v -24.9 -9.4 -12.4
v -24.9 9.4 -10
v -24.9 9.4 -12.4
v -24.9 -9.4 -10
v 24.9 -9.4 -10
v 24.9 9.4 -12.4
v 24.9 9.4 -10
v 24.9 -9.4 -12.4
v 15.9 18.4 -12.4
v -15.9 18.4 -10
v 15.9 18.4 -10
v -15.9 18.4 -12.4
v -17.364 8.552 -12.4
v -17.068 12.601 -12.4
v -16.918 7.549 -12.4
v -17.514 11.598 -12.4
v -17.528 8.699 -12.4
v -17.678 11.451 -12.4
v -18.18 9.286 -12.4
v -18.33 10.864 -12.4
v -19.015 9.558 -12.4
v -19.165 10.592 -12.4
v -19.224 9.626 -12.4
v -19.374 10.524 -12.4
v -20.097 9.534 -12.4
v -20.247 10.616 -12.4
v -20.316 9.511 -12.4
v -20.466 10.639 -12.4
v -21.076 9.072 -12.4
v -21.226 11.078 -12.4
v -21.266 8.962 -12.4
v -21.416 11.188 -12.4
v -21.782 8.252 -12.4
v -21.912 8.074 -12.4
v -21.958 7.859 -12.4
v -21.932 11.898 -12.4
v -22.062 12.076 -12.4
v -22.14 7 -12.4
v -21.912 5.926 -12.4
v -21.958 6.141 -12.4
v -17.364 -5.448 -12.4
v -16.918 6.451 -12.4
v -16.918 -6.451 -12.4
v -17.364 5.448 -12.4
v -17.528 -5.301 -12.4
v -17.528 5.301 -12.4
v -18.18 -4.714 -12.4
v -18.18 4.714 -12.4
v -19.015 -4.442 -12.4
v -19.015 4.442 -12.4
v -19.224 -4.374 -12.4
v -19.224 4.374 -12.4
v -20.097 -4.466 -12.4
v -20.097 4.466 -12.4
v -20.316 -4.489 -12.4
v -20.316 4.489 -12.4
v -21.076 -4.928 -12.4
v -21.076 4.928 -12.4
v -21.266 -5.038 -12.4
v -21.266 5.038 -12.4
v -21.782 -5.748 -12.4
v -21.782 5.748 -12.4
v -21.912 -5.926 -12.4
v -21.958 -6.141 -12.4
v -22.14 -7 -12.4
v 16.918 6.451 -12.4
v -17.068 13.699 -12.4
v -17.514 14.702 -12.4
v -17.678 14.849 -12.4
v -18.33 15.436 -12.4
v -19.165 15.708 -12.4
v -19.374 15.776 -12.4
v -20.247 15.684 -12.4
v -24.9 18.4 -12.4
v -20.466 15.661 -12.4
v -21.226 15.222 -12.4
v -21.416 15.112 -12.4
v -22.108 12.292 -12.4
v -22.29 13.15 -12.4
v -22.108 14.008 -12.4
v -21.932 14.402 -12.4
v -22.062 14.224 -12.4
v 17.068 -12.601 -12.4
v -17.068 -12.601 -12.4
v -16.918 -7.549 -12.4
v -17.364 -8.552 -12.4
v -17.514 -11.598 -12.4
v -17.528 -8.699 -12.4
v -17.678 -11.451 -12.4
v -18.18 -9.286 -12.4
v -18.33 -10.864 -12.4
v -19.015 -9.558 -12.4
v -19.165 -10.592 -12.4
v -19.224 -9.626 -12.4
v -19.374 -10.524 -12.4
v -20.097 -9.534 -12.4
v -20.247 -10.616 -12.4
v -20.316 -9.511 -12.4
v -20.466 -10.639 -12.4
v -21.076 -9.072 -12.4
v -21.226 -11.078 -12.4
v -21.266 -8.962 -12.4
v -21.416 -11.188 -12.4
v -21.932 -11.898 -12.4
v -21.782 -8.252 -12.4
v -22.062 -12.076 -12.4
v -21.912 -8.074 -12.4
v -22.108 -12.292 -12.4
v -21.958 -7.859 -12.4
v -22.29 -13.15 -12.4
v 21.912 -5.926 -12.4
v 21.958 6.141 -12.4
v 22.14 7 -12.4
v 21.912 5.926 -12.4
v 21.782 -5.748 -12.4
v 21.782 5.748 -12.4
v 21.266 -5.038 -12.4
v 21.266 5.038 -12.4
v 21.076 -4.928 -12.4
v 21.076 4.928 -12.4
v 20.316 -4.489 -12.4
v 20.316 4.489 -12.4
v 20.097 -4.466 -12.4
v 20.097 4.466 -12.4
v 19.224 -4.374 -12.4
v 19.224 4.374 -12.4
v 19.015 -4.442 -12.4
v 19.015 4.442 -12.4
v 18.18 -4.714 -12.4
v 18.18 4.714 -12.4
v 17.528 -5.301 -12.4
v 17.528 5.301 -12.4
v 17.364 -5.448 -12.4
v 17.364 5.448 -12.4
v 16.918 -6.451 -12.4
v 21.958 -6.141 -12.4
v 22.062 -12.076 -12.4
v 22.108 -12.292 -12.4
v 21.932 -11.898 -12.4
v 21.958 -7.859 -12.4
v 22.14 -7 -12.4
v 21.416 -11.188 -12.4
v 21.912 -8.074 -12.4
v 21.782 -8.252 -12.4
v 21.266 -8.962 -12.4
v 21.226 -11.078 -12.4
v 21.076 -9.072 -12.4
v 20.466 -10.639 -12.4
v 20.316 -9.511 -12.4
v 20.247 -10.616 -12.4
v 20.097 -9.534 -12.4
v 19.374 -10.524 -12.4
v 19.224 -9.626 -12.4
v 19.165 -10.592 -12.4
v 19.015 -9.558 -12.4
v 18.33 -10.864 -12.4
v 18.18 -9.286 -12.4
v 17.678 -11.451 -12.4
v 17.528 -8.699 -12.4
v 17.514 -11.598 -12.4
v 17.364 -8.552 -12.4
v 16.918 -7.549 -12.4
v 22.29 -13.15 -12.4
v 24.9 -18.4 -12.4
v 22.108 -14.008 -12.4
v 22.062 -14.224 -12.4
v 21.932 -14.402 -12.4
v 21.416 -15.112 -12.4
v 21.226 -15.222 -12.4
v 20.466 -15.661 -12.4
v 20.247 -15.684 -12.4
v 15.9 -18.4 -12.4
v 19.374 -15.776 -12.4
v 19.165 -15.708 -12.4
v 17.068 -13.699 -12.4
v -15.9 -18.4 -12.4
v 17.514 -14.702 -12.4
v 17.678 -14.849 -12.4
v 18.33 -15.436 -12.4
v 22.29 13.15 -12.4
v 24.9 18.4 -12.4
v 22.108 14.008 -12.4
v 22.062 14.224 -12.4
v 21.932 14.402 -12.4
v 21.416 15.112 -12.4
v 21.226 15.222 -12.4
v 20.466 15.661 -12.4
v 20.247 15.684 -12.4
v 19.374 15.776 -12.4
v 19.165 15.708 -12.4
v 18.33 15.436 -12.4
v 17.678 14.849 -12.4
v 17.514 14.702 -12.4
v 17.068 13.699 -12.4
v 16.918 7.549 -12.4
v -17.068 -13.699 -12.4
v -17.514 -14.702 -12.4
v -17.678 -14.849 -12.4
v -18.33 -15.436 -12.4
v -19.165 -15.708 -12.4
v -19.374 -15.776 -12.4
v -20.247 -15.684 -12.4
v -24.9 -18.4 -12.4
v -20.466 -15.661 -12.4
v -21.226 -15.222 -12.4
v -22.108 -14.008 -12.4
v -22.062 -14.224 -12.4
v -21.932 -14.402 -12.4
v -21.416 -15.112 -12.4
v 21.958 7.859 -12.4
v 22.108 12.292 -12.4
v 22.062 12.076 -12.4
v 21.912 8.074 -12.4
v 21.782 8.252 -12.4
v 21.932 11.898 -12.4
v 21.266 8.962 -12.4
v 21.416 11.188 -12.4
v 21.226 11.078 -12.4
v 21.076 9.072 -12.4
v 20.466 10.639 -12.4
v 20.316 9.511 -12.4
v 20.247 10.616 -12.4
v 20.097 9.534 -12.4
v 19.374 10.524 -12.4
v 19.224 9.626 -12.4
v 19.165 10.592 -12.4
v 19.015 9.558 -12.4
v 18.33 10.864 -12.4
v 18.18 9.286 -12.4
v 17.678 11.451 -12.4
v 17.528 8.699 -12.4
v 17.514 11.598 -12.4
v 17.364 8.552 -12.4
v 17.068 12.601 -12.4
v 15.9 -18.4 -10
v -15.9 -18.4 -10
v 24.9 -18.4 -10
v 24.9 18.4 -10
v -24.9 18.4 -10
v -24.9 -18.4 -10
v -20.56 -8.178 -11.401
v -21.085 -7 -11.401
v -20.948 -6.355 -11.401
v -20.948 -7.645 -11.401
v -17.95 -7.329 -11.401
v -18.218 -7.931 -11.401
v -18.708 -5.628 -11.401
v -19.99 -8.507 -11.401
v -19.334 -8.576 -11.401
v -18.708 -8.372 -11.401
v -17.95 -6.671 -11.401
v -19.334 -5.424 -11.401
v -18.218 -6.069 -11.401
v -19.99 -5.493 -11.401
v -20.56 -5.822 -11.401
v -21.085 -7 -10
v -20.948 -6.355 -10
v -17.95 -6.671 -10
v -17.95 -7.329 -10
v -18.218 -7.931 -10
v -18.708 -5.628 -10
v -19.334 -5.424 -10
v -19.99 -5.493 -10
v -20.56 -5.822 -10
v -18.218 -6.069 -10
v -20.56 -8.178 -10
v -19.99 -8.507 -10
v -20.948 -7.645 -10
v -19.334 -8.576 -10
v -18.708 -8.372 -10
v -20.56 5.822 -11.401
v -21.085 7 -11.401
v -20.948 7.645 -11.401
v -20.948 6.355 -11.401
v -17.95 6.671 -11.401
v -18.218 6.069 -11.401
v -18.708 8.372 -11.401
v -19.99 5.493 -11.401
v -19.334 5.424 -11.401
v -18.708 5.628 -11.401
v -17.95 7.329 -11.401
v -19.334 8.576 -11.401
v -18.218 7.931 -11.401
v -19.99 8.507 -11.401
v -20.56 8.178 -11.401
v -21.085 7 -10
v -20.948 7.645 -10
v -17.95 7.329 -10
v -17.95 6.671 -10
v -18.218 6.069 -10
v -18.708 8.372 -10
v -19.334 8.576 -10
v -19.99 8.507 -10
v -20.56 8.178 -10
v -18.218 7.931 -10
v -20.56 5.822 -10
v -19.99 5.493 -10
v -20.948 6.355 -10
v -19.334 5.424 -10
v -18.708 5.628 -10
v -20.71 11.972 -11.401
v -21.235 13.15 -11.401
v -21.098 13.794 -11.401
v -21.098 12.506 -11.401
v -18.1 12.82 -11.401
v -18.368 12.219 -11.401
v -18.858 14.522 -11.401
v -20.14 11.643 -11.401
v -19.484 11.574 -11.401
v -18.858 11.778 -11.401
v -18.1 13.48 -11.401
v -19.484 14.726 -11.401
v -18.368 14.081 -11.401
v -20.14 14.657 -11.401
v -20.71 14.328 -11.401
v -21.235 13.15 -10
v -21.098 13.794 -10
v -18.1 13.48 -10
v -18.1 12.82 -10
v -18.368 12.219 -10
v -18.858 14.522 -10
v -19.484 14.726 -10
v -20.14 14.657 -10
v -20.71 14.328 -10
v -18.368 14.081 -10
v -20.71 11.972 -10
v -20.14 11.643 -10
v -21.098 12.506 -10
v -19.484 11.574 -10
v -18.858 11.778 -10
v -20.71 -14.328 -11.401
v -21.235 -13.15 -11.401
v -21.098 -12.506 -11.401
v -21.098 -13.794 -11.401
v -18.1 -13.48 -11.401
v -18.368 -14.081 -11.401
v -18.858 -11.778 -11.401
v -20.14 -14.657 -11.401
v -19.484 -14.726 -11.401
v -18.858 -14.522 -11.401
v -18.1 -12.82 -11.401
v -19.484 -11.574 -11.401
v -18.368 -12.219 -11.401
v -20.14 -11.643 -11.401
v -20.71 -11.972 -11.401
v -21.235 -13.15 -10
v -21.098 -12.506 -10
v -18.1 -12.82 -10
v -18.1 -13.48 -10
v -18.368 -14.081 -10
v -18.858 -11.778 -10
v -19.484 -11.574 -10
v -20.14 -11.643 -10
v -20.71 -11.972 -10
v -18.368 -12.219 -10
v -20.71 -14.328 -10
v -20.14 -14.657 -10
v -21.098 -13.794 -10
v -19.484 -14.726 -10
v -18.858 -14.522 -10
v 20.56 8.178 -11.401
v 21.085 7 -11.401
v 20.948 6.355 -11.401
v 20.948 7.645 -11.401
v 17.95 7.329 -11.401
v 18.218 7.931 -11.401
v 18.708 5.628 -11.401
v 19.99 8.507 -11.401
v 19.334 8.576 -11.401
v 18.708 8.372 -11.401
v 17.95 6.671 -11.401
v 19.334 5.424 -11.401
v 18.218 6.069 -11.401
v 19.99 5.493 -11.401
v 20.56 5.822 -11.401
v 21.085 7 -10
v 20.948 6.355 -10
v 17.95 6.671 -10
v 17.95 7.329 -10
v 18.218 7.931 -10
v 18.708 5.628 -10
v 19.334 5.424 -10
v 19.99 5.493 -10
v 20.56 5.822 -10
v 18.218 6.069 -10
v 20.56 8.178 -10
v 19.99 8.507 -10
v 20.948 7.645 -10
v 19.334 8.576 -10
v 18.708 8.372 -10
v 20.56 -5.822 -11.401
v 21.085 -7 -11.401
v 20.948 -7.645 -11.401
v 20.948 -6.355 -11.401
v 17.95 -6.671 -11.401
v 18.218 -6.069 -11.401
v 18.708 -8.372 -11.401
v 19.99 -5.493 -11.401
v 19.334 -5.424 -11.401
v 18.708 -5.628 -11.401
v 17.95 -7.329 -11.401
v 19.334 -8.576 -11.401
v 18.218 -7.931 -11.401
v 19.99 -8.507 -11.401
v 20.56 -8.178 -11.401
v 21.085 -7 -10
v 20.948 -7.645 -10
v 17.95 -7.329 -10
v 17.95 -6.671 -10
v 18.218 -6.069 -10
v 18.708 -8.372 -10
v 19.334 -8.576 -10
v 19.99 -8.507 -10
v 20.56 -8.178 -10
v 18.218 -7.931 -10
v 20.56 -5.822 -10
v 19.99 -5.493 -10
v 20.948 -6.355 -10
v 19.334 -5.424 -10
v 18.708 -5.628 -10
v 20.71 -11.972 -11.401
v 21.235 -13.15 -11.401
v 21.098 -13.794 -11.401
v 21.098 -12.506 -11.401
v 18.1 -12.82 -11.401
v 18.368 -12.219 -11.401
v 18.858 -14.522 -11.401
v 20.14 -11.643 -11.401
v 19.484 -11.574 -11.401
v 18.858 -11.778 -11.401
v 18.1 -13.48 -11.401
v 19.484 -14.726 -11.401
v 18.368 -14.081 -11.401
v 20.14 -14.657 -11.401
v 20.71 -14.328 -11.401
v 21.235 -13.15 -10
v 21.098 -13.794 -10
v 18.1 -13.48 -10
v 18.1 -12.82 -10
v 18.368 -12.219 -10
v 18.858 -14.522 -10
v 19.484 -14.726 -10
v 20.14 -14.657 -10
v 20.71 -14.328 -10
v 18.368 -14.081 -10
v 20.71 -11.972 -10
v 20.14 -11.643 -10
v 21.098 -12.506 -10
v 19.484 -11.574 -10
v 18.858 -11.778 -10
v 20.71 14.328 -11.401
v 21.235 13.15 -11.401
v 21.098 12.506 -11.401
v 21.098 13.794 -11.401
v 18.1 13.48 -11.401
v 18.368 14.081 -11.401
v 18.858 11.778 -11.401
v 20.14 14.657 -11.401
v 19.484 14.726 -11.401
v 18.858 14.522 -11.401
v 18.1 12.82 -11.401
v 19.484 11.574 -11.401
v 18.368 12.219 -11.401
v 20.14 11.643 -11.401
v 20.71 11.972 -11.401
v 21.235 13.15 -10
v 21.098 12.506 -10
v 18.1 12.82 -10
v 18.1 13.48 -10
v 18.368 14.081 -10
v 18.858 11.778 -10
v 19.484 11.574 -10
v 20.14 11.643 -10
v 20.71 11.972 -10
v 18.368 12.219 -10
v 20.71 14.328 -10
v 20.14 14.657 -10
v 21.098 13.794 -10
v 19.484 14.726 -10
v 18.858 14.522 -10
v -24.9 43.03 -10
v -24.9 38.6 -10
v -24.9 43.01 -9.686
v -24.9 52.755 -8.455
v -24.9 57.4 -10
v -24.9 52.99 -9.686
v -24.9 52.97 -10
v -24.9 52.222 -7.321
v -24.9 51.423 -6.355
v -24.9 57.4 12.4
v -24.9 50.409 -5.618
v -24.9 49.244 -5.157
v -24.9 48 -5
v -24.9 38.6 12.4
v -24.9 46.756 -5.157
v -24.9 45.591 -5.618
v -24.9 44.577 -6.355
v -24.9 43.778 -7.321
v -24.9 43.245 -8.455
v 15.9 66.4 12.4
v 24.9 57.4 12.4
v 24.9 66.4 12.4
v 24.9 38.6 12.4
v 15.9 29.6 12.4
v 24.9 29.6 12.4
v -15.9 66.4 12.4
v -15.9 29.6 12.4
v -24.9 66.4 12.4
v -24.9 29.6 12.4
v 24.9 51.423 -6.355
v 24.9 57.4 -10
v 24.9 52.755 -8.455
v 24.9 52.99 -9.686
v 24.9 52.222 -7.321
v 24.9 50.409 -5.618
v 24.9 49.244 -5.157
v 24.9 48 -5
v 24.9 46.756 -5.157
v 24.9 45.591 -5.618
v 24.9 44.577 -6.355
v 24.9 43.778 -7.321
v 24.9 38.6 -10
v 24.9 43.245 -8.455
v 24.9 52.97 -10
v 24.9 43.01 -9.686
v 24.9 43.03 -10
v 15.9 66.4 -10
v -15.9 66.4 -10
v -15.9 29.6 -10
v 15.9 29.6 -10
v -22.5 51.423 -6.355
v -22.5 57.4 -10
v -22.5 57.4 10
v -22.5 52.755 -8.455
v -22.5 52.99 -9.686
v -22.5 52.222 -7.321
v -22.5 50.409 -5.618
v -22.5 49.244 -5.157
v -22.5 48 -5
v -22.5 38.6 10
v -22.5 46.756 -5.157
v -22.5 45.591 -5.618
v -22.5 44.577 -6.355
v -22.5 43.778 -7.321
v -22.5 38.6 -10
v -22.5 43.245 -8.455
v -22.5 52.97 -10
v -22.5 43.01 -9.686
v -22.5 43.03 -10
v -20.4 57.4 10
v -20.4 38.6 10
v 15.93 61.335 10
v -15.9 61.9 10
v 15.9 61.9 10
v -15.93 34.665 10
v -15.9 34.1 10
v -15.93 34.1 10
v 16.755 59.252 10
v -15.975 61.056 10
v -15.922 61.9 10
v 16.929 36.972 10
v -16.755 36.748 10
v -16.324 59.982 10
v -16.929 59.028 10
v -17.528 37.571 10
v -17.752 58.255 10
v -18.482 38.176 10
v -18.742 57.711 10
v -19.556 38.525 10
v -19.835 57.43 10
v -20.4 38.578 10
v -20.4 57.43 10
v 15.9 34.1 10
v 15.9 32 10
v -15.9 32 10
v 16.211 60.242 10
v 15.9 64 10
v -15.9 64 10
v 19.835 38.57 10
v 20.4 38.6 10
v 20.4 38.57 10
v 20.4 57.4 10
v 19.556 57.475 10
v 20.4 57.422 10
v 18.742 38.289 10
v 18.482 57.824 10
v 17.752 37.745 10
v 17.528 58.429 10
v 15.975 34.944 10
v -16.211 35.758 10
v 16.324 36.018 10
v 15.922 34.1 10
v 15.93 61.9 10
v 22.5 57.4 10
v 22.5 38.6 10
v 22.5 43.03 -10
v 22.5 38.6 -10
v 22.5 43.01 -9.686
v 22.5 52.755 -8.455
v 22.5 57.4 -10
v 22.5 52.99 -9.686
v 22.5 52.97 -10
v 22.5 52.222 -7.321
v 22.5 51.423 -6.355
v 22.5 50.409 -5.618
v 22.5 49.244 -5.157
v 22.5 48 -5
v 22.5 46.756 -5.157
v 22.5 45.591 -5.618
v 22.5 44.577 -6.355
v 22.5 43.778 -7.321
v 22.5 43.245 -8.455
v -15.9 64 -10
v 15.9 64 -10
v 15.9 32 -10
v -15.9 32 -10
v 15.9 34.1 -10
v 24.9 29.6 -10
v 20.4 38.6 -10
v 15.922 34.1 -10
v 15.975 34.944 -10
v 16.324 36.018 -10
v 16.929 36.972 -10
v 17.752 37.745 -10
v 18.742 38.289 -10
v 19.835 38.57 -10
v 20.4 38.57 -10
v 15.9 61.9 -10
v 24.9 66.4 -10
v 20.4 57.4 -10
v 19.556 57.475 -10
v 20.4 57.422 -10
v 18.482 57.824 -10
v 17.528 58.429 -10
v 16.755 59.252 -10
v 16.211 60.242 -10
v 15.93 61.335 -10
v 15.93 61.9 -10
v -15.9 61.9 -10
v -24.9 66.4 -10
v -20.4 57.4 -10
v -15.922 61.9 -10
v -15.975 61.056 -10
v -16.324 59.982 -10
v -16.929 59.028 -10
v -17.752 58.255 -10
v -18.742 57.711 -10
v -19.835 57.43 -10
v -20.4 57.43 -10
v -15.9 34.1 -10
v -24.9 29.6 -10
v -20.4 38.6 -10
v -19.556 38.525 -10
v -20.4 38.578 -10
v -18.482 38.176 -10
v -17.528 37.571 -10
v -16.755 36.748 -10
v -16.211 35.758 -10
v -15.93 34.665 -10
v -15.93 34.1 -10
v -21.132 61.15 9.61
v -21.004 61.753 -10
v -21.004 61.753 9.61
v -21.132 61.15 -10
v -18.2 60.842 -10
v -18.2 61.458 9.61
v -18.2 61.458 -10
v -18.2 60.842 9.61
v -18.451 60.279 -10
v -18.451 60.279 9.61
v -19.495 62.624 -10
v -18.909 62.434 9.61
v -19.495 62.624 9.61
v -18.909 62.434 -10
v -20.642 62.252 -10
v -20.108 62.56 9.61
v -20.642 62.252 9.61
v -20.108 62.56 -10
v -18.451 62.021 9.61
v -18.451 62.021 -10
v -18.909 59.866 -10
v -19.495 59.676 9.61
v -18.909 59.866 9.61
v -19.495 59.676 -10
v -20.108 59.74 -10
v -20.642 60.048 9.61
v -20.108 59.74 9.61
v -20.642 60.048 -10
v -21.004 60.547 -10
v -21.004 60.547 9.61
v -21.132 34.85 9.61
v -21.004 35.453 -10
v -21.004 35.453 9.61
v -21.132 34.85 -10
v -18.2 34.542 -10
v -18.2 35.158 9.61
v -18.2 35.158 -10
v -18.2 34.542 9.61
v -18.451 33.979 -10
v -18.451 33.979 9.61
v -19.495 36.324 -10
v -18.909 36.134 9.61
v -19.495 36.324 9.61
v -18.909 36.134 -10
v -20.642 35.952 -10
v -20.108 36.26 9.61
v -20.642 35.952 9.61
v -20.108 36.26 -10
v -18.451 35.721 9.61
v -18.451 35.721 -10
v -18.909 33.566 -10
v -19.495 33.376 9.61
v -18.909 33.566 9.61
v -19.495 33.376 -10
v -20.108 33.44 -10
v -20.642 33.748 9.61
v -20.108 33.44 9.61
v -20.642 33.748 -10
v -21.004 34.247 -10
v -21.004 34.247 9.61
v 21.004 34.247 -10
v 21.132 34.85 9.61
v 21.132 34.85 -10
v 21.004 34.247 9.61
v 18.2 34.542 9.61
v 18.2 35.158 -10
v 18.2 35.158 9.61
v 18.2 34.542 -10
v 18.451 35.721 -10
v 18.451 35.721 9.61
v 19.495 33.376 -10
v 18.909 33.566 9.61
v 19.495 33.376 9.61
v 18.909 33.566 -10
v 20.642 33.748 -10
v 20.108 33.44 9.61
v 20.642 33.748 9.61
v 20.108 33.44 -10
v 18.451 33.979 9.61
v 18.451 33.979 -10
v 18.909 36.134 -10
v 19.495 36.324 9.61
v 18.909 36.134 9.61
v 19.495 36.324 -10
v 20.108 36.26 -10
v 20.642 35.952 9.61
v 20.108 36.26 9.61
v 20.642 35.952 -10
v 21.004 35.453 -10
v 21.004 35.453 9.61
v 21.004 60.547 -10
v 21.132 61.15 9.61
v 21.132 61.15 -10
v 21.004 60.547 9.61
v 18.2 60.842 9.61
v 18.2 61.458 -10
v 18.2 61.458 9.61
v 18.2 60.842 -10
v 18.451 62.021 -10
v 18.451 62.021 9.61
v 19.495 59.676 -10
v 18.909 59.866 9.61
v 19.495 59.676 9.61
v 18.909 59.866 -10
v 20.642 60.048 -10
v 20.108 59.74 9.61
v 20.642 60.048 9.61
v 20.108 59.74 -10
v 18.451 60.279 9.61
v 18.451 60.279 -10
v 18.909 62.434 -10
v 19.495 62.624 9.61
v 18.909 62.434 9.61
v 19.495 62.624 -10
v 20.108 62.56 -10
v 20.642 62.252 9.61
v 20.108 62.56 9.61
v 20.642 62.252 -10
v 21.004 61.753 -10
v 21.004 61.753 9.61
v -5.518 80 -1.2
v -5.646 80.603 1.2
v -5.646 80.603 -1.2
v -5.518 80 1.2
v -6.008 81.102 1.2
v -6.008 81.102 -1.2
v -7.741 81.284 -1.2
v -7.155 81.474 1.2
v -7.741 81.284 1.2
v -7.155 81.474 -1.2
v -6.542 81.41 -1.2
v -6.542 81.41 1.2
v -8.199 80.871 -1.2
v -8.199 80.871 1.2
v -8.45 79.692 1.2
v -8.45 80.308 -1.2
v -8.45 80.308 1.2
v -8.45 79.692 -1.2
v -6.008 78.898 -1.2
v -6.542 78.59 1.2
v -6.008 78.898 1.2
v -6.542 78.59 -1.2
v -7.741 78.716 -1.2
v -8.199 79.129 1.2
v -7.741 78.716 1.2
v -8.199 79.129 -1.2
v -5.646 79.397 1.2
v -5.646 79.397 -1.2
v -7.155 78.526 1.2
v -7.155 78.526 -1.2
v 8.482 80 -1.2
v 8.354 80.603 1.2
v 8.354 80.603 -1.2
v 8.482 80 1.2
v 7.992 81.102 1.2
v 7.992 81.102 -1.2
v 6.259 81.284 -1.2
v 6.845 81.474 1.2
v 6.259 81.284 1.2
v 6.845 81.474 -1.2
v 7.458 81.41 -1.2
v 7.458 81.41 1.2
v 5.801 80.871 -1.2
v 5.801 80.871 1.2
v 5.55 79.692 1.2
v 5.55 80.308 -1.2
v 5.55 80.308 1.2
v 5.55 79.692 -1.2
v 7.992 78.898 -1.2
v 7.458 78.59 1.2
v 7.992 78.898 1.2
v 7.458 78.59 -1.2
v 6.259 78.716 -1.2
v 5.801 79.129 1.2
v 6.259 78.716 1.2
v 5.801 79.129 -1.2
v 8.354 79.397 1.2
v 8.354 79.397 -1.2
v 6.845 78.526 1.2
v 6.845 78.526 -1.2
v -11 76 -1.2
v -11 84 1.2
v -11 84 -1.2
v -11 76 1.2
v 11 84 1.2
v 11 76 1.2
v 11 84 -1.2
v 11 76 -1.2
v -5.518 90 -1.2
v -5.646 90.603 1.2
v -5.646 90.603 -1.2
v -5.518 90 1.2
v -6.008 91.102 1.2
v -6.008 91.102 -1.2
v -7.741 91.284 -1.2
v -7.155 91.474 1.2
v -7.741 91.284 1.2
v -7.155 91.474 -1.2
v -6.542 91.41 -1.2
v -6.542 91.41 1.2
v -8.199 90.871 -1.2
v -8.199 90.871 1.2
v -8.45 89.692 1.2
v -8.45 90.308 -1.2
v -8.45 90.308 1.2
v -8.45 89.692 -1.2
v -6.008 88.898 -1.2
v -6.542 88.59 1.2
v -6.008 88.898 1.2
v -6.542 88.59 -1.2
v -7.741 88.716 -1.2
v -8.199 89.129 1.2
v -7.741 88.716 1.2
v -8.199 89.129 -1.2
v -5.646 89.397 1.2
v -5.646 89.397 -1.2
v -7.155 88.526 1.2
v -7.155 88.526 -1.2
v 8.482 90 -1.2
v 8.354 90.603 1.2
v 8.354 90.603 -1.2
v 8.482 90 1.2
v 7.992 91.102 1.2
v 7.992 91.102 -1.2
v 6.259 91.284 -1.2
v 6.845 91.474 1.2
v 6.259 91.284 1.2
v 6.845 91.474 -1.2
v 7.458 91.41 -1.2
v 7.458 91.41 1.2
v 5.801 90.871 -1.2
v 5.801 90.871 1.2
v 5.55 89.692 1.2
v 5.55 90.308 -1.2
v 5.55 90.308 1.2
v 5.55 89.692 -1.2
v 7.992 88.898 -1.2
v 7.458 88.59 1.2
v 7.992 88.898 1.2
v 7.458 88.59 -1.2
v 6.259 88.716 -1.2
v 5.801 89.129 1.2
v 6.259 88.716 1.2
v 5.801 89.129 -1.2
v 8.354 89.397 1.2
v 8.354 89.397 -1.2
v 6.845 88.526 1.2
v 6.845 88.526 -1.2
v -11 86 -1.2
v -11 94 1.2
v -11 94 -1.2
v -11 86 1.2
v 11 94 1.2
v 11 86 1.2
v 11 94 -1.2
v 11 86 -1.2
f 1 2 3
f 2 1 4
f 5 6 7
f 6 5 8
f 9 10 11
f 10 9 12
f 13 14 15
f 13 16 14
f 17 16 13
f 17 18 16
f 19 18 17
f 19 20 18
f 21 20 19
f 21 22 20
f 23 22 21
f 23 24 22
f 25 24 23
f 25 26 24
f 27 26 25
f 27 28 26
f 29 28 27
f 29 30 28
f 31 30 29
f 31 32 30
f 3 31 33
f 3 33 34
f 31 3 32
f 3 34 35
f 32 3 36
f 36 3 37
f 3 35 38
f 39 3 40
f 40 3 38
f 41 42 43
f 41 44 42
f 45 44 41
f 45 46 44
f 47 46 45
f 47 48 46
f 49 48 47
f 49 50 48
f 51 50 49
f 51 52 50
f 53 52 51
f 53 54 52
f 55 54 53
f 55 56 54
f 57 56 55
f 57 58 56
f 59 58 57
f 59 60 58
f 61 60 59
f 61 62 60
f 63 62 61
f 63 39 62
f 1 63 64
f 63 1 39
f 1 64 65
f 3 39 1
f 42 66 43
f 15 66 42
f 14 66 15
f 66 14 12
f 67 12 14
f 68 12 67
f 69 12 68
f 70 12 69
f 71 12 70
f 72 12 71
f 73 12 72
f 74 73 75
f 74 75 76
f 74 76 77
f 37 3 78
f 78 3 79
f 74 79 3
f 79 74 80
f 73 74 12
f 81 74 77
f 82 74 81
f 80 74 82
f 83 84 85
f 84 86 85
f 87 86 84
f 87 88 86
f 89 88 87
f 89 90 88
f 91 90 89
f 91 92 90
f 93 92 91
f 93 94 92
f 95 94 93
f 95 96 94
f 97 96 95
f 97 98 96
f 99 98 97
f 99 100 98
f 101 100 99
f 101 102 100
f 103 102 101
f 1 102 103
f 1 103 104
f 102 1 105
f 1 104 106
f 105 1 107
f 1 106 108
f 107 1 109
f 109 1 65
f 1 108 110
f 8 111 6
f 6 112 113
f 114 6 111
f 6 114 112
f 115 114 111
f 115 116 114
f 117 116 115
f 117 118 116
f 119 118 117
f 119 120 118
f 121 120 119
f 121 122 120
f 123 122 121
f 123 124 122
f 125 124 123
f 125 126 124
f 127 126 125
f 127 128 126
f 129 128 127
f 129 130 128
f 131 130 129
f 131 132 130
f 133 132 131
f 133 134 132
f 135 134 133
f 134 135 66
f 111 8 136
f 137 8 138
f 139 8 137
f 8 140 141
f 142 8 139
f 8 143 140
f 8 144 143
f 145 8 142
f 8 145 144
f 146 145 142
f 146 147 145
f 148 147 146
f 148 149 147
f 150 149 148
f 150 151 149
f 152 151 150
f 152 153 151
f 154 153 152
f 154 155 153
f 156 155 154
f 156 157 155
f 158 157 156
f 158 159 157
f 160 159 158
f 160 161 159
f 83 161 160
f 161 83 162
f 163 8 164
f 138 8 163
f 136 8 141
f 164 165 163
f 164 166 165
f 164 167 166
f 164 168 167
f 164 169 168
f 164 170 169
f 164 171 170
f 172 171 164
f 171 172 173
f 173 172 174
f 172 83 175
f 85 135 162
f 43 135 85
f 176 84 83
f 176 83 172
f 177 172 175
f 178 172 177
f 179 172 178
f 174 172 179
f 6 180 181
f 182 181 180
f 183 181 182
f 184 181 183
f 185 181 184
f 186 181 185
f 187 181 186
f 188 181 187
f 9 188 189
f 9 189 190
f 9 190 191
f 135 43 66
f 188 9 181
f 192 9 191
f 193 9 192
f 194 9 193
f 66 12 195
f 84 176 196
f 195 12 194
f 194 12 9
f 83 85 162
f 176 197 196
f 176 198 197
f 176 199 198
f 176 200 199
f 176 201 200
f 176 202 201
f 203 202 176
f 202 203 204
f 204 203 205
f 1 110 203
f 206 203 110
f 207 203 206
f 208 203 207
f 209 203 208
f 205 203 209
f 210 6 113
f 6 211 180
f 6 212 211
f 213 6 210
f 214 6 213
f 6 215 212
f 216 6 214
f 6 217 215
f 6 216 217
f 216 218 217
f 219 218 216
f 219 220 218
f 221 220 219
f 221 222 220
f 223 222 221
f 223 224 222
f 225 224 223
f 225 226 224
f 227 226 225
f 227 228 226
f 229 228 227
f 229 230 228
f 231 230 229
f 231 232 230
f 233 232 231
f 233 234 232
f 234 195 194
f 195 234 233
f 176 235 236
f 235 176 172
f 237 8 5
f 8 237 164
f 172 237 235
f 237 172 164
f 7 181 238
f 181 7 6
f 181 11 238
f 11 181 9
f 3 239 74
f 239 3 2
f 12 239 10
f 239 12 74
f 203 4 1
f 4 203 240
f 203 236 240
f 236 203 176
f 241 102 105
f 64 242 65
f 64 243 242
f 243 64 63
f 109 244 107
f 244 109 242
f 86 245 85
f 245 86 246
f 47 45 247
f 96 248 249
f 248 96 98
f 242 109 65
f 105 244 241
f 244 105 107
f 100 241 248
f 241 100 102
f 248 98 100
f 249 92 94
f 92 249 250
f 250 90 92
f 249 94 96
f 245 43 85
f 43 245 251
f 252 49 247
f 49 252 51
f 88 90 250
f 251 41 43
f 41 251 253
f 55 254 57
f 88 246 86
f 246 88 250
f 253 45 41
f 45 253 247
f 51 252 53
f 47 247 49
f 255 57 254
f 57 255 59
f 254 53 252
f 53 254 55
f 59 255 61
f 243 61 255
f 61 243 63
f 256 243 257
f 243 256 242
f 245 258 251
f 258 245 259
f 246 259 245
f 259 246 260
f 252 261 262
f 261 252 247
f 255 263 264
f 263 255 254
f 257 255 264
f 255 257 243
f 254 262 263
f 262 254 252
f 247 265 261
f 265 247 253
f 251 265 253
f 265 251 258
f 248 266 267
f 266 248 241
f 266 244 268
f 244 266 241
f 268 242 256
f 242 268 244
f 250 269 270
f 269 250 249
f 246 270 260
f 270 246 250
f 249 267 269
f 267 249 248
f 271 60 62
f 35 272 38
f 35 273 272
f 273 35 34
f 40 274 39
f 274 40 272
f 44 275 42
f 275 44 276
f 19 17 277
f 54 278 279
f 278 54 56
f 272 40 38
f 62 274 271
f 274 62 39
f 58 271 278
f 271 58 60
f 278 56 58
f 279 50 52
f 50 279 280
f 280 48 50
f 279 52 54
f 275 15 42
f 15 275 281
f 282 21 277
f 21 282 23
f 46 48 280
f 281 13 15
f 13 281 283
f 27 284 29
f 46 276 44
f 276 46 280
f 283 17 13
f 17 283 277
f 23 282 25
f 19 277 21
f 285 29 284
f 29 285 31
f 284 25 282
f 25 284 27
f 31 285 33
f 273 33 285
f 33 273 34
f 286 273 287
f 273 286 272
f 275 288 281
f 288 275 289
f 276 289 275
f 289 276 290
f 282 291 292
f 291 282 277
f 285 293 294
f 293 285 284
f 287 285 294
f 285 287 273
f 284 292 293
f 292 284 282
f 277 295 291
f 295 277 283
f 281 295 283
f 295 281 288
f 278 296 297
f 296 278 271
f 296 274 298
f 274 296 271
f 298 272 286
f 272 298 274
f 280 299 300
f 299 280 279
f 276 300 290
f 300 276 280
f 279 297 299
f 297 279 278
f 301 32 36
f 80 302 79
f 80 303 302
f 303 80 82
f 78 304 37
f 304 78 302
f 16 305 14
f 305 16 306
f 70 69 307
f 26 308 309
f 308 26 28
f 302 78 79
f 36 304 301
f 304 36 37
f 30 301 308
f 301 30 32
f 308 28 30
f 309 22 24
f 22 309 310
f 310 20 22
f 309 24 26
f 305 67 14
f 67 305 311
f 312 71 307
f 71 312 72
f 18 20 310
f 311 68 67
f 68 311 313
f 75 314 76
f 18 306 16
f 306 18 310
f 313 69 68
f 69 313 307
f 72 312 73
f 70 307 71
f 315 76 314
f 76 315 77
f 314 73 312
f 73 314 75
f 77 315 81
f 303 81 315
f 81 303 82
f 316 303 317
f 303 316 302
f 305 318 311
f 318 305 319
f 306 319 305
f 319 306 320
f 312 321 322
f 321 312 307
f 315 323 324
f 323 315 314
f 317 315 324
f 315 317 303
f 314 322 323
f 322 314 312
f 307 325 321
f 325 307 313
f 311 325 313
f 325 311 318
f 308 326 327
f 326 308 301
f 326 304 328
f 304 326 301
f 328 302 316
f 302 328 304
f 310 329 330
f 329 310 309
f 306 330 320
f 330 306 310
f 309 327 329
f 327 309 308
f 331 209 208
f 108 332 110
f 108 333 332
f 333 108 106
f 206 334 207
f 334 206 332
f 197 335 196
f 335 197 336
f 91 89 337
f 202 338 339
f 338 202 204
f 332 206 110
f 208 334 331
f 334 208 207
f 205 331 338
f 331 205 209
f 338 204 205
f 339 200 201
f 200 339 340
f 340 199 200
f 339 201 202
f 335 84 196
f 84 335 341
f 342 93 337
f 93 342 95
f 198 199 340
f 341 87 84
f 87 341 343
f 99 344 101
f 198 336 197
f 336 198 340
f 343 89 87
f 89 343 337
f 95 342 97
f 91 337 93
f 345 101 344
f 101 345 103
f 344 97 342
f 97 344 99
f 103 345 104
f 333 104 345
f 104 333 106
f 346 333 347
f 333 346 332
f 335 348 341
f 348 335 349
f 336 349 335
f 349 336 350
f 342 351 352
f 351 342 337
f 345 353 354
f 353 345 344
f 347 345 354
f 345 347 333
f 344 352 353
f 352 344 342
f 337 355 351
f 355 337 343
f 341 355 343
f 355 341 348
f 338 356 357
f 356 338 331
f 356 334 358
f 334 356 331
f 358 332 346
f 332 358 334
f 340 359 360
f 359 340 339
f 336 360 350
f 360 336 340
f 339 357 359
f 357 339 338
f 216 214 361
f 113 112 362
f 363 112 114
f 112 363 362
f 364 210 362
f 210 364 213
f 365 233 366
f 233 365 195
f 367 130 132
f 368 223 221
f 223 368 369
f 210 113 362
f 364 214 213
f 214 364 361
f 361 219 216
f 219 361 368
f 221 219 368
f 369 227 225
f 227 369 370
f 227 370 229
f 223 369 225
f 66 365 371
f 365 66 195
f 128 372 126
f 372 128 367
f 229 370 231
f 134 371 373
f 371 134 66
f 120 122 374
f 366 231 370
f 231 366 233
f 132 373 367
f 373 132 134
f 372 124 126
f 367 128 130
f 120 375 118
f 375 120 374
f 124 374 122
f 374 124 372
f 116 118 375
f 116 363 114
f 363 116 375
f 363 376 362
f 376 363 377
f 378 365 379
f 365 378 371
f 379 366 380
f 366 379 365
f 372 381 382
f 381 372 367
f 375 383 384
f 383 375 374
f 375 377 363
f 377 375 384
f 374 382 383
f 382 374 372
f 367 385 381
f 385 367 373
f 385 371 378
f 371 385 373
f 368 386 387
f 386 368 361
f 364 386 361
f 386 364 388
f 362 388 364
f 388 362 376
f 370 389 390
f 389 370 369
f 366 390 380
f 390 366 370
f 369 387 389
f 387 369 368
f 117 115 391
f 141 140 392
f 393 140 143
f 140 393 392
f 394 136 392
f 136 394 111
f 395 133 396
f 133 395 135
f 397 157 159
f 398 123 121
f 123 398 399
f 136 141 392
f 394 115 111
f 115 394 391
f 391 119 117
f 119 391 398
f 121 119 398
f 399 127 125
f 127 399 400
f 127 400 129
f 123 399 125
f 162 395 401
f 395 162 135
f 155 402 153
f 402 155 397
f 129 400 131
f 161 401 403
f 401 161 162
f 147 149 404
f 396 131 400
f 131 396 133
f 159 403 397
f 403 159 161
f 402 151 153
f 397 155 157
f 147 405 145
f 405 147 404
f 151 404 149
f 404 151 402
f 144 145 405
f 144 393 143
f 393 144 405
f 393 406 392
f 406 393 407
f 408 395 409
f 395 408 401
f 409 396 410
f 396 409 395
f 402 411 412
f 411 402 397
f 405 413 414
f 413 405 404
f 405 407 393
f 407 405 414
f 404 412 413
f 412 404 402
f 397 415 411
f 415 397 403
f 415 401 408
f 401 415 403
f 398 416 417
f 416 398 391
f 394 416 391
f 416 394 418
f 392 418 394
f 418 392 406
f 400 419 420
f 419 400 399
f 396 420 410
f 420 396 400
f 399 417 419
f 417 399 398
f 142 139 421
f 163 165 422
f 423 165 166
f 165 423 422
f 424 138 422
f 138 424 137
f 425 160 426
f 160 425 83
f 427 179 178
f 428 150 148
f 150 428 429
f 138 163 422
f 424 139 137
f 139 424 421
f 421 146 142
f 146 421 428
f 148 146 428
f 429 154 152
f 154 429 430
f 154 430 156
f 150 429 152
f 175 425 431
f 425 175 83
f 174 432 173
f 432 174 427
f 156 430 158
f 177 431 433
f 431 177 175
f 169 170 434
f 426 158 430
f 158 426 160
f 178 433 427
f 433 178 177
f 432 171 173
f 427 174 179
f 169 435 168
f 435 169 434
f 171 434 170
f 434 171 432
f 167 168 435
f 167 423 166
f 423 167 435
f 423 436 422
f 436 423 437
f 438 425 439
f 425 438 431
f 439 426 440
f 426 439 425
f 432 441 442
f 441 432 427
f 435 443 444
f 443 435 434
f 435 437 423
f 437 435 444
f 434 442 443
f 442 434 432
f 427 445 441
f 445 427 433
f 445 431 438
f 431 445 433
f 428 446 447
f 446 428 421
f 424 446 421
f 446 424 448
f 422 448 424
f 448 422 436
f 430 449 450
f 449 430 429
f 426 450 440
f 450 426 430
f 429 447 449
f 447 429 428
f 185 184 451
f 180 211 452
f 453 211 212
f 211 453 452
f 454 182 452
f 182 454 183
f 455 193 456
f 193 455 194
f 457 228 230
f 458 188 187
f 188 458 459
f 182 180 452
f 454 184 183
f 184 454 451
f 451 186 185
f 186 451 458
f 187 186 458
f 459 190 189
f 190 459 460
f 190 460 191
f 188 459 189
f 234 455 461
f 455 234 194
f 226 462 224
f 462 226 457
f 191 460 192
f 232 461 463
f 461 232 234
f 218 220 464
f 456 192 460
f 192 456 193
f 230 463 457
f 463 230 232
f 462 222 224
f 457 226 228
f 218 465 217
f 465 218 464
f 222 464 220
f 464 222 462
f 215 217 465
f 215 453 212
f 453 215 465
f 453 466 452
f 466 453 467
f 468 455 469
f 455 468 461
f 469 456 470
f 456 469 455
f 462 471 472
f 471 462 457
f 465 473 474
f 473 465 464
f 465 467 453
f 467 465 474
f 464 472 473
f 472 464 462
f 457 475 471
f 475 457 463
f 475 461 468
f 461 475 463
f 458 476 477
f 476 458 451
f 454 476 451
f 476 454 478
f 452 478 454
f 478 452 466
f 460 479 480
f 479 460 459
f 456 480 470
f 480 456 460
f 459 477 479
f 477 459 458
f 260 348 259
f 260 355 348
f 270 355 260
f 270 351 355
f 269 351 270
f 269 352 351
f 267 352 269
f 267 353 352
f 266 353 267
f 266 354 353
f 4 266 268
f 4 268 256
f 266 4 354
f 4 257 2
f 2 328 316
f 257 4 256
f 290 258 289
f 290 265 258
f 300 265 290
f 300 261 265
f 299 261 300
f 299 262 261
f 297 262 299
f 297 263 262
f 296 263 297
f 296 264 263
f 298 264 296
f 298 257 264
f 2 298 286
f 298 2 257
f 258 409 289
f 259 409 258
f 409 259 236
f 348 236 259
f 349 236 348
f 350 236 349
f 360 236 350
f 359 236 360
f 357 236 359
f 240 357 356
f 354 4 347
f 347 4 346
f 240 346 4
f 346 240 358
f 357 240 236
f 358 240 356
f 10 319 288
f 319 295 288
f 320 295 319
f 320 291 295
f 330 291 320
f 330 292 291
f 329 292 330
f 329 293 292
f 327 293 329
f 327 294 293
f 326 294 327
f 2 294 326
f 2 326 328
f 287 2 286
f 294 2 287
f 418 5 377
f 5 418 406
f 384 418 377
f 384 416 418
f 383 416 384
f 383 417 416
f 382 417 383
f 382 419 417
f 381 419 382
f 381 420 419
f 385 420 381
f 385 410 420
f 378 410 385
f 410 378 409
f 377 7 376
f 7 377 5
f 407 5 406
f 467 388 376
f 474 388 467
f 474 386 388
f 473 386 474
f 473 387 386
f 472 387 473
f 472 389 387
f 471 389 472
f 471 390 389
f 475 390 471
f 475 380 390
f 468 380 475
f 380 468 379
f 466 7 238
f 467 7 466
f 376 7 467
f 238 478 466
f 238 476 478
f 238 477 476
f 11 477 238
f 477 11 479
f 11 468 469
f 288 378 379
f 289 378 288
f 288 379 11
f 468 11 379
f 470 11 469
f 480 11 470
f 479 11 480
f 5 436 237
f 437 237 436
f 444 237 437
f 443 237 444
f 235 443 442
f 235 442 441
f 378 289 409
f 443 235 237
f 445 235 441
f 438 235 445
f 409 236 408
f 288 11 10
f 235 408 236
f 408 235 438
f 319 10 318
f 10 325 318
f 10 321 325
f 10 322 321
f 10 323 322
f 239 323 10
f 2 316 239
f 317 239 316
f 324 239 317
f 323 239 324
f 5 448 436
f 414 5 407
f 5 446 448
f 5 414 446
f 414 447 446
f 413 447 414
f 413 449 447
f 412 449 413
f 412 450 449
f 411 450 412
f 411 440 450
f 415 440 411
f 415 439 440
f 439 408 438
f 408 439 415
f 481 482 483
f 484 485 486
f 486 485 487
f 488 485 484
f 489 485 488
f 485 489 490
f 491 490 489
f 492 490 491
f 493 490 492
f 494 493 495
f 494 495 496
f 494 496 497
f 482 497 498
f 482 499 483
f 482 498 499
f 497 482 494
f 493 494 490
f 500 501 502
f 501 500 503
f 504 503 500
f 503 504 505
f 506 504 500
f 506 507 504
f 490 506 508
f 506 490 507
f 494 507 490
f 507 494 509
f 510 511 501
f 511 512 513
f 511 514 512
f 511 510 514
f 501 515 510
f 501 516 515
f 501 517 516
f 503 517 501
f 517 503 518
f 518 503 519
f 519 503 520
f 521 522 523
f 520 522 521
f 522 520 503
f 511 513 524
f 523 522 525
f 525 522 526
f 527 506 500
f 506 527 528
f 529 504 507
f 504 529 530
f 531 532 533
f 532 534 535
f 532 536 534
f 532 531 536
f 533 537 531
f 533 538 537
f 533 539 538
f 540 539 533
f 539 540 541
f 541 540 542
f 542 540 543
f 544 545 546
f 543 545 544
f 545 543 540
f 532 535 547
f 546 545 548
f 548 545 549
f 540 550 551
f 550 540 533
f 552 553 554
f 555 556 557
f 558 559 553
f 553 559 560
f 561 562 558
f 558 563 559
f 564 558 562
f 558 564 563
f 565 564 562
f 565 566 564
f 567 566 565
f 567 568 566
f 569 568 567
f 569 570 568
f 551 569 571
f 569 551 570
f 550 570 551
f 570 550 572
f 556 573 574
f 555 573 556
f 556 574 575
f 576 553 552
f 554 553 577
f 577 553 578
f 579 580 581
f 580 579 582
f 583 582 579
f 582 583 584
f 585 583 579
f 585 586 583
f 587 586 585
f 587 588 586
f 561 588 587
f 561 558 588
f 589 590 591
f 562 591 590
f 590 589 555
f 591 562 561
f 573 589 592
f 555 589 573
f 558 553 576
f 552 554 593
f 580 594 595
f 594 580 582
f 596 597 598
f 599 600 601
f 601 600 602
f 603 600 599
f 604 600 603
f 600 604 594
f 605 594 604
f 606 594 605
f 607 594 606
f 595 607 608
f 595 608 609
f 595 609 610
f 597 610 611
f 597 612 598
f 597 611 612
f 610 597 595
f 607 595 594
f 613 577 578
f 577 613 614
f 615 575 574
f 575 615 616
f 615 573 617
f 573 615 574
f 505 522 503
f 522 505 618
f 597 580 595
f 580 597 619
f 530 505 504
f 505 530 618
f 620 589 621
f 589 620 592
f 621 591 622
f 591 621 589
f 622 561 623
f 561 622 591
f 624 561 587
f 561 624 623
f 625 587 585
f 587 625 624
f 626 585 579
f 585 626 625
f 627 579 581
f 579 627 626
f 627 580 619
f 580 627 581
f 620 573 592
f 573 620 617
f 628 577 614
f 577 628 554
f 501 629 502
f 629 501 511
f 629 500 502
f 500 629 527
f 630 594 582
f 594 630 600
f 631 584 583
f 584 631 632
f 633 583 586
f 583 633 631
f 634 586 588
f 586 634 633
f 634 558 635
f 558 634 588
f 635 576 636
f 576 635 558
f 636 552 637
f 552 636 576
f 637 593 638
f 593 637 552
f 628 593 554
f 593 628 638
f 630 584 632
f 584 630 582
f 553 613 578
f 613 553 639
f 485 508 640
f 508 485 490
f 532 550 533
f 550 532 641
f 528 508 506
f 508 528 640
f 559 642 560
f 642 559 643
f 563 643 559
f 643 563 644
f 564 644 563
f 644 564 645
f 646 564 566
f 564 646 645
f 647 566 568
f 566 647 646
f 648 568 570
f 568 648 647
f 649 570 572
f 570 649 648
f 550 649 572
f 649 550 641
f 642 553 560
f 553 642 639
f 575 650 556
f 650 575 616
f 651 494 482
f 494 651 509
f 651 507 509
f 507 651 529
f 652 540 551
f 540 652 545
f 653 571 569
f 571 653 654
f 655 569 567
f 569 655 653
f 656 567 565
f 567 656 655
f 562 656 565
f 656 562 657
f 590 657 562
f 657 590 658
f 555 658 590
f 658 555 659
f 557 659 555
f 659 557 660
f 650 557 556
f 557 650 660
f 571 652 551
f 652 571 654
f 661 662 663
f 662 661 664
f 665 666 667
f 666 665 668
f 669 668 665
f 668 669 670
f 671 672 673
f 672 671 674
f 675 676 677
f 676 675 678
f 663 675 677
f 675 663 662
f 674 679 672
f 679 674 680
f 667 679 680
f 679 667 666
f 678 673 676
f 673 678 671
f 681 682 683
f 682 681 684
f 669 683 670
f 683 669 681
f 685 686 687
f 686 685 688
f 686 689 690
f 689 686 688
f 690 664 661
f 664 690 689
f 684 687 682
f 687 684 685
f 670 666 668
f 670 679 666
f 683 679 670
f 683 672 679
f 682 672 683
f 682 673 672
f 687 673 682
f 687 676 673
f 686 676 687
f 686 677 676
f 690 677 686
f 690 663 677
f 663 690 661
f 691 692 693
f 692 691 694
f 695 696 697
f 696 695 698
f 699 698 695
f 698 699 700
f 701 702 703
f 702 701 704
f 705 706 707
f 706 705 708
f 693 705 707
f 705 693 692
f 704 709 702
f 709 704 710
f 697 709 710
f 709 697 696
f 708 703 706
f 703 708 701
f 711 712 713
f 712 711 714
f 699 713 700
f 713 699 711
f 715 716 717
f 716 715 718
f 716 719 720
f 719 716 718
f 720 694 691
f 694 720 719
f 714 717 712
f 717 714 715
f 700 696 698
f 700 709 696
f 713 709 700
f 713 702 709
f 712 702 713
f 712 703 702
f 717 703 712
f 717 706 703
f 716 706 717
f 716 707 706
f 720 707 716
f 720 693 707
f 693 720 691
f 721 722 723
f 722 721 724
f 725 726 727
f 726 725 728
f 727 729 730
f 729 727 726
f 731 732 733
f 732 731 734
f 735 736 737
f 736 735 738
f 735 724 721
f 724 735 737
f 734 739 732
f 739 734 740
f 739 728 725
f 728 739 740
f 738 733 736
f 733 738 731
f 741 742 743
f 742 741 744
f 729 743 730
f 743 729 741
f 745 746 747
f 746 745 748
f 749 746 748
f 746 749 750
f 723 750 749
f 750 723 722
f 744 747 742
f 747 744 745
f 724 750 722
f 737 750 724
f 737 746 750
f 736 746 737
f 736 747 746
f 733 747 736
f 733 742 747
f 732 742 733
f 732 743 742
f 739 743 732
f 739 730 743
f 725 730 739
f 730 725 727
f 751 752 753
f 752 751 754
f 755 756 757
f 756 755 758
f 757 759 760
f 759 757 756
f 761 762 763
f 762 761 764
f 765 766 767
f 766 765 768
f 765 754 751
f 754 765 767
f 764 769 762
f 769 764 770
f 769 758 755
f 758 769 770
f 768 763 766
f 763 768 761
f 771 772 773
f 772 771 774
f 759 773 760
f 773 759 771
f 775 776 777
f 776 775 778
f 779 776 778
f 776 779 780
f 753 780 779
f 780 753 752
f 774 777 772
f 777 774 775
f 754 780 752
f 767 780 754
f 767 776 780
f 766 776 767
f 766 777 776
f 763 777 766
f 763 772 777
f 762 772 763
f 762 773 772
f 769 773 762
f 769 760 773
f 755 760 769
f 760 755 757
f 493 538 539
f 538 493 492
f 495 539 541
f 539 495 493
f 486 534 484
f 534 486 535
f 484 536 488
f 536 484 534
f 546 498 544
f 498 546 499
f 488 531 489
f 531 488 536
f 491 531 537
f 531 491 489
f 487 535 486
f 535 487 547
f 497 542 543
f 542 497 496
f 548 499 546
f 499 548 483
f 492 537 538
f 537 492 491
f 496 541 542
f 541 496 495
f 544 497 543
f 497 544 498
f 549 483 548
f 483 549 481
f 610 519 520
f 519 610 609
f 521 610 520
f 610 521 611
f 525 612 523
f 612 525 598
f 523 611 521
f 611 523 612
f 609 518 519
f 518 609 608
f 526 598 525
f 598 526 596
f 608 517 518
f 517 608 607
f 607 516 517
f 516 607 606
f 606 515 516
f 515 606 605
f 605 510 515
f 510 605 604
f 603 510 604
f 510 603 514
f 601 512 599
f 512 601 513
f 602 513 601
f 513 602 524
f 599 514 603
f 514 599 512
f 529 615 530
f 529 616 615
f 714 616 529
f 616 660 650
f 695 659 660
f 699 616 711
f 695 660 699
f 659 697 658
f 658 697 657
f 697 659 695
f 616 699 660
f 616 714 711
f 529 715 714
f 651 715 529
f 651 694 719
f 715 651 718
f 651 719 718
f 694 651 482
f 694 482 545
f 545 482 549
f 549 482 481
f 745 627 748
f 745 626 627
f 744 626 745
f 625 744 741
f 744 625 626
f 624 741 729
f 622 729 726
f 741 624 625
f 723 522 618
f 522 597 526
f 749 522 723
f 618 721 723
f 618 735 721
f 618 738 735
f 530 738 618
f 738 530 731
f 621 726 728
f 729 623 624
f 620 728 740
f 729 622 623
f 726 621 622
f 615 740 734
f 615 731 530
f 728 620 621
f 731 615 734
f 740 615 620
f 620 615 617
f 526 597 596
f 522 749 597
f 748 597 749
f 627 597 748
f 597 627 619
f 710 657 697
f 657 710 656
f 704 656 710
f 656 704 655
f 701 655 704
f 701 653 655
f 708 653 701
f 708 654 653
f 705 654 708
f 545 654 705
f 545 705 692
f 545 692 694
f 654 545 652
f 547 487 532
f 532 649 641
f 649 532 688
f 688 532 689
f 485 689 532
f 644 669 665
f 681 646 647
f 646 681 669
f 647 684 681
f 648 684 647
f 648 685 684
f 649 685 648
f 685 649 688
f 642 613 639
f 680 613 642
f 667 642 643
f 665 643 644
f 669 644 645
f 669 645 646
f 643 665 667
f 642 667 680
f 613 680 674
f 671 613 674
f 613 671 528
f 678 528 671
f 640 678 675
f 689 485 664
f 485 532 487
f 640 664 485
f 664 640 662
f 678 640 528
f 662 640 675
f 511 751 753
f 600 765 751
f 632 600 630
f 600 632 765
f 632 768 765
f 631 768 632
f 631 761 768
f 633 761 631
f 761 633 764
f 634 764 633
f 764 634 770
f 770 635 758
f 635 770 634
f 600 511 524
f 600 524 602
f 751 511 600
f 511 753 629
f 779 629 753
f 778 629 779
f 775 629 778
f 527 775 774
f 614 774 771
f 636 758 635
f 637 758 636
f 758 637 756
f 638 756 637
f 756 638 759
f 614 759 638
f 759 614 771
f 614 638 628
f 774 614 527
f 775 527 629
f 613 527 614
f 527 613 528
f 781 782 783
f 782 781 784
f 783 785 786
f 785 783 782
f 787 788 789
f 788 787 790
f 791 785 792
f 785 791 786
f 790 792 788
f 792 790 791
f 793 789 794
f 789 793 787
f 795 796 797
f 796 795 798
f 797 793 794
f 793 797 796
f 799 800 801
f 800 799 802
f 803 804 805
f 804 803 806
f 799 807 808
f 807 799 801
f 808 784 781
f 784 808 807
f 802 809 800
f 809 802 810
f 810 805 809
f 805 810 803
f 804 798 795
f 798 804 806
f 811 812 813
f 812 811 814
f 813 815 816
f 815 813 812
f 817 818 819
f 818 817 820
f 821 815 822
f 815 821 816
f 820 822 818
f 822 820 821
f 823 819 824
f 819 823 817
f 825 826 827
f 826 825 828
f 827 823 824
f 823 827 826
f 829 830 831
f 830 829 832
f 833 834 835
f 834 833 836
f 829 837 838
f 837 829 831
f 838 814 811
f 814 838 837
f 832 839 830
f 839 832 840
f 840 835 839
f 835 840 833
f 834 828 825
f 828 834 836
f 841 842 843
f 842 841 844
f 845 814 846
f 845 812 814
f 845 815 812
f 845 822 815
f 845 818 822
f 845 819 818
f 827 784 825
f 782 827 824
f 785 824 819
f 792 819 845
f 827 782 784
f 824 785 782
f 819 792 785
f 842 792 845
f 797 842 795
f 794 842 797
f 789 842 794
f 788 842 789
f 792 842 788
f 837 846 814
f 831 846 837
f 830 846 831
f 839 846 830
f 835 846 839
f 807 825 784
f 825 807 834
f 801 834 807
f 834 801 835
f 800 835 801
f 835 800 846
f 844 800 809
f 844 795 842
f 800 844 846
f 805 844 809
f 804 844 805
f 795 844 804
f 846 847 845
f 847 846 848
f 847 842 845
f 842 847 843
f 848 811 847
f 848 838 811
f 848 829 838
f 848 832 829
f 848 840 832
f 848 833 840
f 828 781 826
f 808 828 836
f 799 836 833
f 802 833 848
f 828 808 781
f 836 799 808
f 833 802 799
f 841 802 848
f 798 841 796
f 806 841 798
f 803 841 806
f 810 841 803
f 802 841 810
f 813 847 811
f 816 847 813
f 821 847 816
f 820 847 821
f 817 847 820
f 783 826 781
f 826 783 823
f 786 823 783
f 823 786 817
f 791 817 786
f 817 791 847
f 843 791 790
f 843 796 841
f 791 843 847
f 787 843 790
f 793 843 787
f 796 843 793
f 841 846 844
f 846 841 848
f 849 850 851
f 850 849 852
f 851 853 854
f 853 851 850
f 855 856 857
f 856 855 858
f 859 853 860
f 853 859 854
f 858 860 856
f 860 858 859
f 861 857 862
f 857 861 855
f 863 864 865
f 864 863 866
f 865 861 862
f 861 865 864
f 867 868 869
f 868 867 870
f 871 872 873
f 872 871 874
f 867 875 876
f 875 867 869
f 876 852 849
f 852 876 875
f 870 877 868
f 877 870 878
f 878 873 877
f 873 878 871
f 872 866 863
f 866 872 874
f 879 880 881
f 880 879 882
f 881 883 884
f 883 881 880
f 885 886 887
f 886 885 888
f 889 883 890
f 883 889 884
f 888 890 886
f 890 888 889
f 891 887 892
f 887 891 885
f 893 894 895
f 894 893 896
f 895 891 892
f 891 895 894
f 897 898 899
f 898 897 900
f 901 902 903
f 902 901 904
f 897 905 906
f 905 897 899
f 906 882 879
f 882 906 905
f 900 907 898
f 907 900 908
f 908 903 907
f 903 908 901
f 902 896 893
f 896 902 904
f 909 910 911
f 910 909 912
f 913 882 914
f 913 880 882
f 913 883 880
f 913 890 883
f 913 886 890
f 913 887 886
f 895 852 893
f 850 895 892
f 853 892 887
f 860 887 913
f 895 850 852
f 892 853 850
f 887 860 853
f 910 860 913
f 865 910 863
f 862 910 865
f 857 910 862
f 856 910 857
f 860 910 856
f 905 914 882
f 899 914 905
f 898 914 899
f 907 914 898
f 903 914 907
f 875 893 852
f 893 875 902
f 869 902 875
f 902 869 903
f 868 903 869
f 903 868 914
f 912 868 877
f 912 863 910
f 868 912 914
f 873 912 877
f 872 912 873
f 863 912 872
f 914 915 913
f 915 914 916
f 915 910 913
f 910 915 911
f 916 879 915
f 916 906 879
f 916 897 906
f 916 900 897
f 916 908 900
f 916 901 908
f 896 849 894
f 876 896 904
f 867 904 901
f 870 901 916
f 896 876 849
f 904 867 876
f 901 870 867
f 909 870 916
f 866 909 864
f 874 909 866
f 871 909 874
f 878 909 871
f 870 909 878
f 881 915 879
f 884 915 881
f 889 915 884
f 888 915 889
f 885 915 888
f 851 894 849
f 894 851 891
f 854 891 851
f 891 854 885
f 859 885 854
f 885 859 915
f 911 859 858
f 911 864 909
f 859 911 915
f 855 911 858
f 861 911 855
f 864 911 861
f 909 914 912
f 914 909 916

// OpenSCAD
// file: ../lib/bevel.scad
module bevel(l, s, oe=0.1) {
	scale([-1, 1, 1])
	rotate([0, -90, 0])
	linear_extrude(l)
	difference() {
		translate([-oe, -oe]) square([s, s]);
		translate([s, s]) circle(r=s, center=true);
	}
}


module bevel_inv(l, s) {
	scale([-1, 1, 1])
	rotate([0, -90, 0])
	linear_extrude(l)
	difference() {
		square([s, s]);
		difference() {
			square([s, s]);
			translate([s, s]) circle(r=s, center=true);
		}
	}
}
// file: ../lib/hole.scad
module cylinder_outer(h,d=undef,d1=undef,d2=undef,fn=15) {
	fudge = cos(180/fn);
	cylinder(h=h,d=d/fudge,d1=d1/fudge,d2=d2/fudge,$fn=fn);
}

module hole(d, height, countersink=0, extra_above=false) {
	height = height - countersink;
	translate([0, 0, -(height+countersink)]) {
		translate([0, 0, height+0.001]) cylinder_outer(d1=d, d2=d*1.5, h=countersink);
		if (extra_above) {
			translate([0, 0, height+0.001]) cylinder_outer(d1=d, d2=d*2, h=countersink*3/2);
		}
		if (height > 0)
			translate([0, 0, -2]) cylinder_outer(d=d, h=height+2.1);
	}
}

module nut_trap(w, h, sides){
	cylinder(r = w / 2 / cos(180 / 6) + 0.05, h=h, $fn=6);
}

module rim(id, od, h) {
	difference() {
		cylinder_outer(h=h, d=od);
		translate([0, 0, -1]) cylinder(h=h+2, d=id);
	}
}

rim(8.5, 13, 2);
// file: ../lib/util.scad
function repeat(x, c) = [for (i = [1 : c]) x];

module cube_centered_xy(s) {
	translate([0, 0, s[2]/2]) cube(s, center=true);
}

module cube_shell(size, wall_thickness, center=false) {
	if (center) {
		cube_shell_int(size, wall_thickness);
	} else {
		translate([size[0]/2 + wall_thickness, size[1]/2 + wall_thickness, 0])
		cube_shell_int(size, wall_thickness);
	}
}

module cube_shell_int(size, wall_thickness) {
	difference() {
		cube_centered_xy(size + [wall_thickness*2, wall_thickness*2, wall_thickness]);
		translate([0, 0, wall_thickness]) cube_centered_xy(size + [0, 0, 0.001]);
	}
}

module rotate_all(increment=90) {
	for (i = [0 : increment : 360]) {
		rotate(i) children();
	}
}

module mirror_all() {
	children();
	scale([-1, 1, 1]) children();
	scale([1, -1, 1]) children();
	scale([-1, -1, 1]) children();
}
// main file
use <../lib/util.scad>;
use <../lib/hole.scad>;
use <../lib/bevel.scad>;

width = 32;
length = 45;
height = 20;
thickness = 0.6 * 4;
hole = 3;
clearance = 0.1;
$fn = 25;

look_inside = true;

size = [length, width, height];
fsize = size+repeat(thickness*2, 3);

module case_shell() {
	c = hole * 3;
	difference() {
		cube(size+repeat(thickness*2, 3), center=true);
		cube(size, center=true);
	}
	for (r = [0 : 180 : 180]) {
		rotate([0, 0, r]) translate([(length + thickness*2)/2-c/2, 0, -(height+thickness*2)/2]) {
			translate([0, -fsize[1]/2 + c/2, fsize[2]/2]) 
			difference() {
				cube([c, c, height+thickness*2], center=true);
				rotate([0, 0, -90]) translate([-c/2-0.005, -c/2-0.005, height/2+0.001]) rotate([0, 90, 0]) bevel(height+0.002, c/2+0.005);
			}
			translate([0, fsize[1]/2 - c/2, fsize[2]/2]) difference() {
				cube([c, c, height+thickness*2], center=true);
				translate([-c/2-0.005, -c/2-0.005, height/2+0.001]) rotate([0, 90, 0]) bevel(height+0.002, c/2+0.005);
			}
		}
	}
}

module holes(d) {
	c = hole * 3.5;
	for (r = [0 : 180 : 180]) {
		rotate([0, 180, r]) translate([length/2+thickness, 0, height/2 + thickness]) {
			translate([-thickness-hole, -7, 0]) hole(d, height+0.01, 1, true);
			translate([-thickness-hole, 7, 0]) hole(d, height+0.01, 1, true);
			translate([- c/2, width/2+thickness-c/2, 0]) hole(d, height+0.01, 1, true);
			translate([- c/2, -width/2-thickness+c/2, 0]) hole(d, height+0.01, 1, true);
		}
	}
}

module base() {
	difference() {
		case_shell();
		translate([0, 0, thickness]) cube(fsize+repeat(0.001, 3), center=true);
		holes(hole + clearance);
	}
}

module top() {
	difference() {
		case_shell();
		translate([0, 0, -(height+thickness*2)/2+thickness/2-0.001]) cube([fsize[0]+0.001, fsize[1]+0.001, thickness+0.003], center=true);
		holes(hole - clearance);
		for (r = [0 : 180 : 180]) {
			rotate([0, 180, r]) translate([length/2+thickness, 0, height/2]) {
				translate([-thickness-0.001, 0, 0]) rotate([0, 90, 0]) cylinder(d=10, h=thickness+0.002);
			}
		}
	}
}

module flex_grabber() {
	difference() {
		cube([22, 8, thickness], center=true);
		translate([-7, 0, (thickness+0.002)/2]) hole(hole-clearance, thickness+0.002, 0, false);
		translate([7, 0, (thickness+0.002)/2]) hole(hole-clearance, thickness+0.002, 0, false);
	}
}

base();
translate([0, width*1.5, 0]) top();
translate([0, width*2.5, 0])flex_grabber();
translate([0, width*2.5+10, 0])flex_grabber();
